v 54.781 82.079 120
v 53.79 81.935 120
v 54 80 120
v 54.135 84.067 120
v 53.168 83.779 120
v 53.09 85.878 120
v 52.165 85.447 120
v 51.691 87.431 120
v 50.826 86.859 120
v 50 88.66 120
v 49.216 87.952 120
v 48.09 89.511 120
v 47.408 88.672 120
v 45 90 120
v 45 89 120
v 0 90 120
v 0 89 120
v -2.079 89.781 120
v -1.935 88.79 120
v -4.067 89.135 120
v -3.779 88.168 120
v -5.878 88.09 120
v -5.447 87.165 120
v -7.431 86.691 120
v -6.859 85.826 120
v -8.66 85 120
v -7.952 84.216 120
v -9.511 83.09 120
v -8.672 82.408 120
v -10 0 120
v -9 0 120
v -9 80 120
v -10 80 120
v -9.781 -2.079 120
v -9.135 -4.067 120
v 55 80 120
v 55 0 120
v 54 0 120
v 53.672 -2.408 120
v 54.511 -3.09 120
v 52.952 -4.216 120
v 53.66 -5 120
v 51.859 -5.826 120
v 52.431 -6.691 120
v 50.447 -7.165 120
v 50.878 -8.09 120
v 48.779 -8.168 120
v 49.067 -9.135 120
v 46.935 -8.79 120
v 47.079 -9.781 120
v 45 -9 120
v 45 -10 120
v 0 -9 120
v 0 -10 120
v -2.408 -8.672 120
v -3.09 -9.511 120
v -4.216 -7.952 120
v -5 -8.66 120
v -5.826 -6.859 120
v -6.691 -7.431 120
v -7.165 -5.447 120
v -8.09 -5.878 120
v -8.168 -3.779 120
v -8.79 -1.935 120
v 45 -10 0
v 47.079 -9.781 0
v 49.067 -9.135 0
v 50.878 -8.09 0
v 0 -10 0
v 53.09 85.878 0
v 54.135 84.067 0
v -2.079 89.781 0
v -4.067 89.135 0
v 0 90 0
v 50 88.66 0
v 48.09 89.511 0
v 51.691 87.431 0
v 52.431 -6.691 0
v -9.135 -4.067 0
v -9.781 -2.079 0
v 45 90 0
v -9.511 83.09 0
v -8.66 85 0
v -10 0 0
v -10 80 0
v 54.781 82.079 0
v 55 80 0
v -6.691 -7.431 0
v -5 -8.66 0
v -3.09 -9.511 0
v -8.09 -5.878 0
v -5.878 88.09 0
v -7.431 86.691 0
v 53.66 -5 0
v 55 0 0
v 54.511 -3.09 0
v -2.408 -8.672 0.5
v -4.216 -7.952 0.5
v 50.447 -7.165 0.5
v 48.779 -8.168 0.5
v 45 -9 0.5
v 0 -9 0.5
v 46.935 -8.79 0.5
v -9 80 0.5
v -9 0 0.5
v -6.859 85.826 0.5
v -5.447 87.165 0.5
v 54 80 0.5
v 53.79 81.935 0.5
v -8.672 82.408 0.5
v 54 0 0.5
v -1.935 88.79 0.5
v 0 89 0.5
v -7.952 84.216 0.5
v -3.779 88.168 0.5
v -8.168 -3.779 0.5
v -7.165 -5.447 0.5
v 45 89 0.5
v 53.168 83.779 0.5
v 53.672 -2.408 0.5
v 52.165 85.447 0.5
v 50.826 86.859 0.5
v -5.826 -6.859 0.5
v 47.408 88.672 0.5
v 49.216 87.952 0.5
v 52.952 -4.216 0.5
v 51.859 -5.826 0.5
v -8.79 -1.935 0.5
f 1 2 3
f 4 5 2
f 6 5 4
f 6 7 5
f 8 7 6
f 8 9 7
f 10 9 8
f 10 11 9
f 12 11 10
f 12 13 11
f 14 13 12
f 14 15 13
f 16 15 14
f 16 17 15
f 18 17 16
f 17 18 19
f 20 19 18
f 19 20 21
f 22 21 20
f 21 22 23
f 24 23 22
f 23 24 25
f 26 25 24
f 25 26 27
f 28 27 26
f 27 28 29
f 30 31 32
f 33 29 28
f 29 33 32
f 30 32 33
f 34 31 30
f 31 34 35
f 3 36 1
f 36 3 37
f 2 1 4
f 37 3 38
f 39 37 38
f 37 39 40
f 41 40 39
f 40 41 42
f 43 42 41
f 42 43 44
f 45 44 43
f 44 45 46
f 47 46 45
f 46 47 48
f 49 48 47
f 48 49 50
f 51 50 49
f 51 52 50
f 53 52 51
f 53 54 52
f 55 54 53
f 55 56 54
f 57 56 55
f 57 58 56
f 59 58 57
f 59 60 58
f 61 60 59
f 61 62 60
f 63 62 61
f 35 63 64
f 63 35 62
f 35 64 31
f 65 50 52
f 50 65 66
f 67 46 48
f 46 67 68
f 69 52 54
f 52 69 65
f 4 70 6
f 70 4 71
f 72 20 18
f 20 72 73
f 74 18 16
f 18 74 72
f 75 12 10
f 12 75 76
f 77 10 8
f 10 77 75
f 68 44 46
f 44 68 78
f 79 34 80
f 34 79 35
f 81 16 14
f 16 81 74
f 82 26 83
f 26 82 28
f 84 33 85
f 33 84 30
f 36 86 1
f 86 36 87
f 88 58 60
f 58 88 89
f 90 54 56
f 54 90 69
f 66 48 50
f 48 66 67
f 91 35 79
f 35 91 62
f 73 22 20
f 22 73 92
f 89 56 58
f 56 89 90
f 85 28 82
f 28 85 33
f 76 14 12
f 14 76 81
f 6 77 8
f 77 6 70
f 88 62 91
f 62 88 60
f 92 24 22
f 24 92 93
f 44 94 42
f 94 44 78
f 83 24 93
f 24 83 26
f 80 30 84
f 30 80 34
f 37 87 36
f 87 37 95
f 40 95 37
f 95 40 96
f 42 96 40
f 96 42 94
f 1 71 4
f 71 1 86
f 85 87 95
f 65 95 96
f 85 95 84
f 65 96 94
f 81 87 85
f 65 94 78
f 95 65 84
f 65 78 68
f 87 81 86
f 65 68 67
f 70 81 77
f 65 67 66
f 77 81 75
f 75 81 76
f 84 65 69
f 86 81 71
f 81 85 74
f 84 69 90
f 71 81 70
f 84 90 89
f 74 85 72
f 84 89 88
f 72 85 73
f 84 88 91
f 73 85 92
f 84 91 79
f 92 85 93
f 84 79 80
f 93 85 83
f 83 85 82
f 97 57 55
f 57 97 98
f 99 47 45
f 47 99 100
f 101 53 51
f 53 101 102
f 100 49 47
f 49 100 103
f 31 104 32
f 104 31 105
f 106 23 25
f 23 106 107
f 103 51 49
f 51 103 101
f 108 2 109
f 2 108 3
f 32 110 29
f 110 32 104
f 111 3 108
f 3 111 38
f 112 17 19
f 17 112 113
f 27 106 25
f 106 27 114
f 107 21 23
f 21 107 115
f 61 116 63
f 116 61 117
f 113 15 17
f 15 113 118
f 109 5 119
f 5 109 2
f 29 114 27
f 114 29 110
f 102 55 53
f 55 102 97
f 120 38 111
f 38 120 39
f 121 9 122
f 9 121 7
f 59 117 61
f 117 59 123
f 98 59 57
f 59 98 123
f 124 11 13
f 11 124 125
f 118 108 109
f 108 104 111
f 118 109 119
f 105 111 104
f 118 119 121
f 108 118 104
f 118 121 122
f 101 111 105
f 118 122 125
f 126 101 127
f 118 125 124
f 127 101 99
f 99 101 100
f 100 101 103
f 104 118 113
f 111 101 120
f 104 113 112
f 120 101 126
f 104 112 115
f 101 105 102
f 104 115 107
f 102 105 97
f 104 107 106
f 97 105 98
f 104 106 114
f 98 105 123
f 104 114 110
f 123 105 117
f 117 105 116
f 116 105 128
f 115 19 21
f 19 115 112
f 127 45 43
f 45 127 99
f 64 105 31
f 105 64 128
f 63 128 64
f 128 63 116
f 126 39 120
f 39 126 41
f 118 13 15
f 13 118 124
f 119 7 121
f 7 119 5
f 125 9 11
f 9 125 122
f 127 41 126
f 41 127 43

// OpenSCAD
difference(){
linear_extrude(120)
offset(10)
square([65-10*2,100-10*2]);

translate([0,0,0.5])
linear_extrude(120)
offset(9)
square([65-10*2,100-10*2]);
}
